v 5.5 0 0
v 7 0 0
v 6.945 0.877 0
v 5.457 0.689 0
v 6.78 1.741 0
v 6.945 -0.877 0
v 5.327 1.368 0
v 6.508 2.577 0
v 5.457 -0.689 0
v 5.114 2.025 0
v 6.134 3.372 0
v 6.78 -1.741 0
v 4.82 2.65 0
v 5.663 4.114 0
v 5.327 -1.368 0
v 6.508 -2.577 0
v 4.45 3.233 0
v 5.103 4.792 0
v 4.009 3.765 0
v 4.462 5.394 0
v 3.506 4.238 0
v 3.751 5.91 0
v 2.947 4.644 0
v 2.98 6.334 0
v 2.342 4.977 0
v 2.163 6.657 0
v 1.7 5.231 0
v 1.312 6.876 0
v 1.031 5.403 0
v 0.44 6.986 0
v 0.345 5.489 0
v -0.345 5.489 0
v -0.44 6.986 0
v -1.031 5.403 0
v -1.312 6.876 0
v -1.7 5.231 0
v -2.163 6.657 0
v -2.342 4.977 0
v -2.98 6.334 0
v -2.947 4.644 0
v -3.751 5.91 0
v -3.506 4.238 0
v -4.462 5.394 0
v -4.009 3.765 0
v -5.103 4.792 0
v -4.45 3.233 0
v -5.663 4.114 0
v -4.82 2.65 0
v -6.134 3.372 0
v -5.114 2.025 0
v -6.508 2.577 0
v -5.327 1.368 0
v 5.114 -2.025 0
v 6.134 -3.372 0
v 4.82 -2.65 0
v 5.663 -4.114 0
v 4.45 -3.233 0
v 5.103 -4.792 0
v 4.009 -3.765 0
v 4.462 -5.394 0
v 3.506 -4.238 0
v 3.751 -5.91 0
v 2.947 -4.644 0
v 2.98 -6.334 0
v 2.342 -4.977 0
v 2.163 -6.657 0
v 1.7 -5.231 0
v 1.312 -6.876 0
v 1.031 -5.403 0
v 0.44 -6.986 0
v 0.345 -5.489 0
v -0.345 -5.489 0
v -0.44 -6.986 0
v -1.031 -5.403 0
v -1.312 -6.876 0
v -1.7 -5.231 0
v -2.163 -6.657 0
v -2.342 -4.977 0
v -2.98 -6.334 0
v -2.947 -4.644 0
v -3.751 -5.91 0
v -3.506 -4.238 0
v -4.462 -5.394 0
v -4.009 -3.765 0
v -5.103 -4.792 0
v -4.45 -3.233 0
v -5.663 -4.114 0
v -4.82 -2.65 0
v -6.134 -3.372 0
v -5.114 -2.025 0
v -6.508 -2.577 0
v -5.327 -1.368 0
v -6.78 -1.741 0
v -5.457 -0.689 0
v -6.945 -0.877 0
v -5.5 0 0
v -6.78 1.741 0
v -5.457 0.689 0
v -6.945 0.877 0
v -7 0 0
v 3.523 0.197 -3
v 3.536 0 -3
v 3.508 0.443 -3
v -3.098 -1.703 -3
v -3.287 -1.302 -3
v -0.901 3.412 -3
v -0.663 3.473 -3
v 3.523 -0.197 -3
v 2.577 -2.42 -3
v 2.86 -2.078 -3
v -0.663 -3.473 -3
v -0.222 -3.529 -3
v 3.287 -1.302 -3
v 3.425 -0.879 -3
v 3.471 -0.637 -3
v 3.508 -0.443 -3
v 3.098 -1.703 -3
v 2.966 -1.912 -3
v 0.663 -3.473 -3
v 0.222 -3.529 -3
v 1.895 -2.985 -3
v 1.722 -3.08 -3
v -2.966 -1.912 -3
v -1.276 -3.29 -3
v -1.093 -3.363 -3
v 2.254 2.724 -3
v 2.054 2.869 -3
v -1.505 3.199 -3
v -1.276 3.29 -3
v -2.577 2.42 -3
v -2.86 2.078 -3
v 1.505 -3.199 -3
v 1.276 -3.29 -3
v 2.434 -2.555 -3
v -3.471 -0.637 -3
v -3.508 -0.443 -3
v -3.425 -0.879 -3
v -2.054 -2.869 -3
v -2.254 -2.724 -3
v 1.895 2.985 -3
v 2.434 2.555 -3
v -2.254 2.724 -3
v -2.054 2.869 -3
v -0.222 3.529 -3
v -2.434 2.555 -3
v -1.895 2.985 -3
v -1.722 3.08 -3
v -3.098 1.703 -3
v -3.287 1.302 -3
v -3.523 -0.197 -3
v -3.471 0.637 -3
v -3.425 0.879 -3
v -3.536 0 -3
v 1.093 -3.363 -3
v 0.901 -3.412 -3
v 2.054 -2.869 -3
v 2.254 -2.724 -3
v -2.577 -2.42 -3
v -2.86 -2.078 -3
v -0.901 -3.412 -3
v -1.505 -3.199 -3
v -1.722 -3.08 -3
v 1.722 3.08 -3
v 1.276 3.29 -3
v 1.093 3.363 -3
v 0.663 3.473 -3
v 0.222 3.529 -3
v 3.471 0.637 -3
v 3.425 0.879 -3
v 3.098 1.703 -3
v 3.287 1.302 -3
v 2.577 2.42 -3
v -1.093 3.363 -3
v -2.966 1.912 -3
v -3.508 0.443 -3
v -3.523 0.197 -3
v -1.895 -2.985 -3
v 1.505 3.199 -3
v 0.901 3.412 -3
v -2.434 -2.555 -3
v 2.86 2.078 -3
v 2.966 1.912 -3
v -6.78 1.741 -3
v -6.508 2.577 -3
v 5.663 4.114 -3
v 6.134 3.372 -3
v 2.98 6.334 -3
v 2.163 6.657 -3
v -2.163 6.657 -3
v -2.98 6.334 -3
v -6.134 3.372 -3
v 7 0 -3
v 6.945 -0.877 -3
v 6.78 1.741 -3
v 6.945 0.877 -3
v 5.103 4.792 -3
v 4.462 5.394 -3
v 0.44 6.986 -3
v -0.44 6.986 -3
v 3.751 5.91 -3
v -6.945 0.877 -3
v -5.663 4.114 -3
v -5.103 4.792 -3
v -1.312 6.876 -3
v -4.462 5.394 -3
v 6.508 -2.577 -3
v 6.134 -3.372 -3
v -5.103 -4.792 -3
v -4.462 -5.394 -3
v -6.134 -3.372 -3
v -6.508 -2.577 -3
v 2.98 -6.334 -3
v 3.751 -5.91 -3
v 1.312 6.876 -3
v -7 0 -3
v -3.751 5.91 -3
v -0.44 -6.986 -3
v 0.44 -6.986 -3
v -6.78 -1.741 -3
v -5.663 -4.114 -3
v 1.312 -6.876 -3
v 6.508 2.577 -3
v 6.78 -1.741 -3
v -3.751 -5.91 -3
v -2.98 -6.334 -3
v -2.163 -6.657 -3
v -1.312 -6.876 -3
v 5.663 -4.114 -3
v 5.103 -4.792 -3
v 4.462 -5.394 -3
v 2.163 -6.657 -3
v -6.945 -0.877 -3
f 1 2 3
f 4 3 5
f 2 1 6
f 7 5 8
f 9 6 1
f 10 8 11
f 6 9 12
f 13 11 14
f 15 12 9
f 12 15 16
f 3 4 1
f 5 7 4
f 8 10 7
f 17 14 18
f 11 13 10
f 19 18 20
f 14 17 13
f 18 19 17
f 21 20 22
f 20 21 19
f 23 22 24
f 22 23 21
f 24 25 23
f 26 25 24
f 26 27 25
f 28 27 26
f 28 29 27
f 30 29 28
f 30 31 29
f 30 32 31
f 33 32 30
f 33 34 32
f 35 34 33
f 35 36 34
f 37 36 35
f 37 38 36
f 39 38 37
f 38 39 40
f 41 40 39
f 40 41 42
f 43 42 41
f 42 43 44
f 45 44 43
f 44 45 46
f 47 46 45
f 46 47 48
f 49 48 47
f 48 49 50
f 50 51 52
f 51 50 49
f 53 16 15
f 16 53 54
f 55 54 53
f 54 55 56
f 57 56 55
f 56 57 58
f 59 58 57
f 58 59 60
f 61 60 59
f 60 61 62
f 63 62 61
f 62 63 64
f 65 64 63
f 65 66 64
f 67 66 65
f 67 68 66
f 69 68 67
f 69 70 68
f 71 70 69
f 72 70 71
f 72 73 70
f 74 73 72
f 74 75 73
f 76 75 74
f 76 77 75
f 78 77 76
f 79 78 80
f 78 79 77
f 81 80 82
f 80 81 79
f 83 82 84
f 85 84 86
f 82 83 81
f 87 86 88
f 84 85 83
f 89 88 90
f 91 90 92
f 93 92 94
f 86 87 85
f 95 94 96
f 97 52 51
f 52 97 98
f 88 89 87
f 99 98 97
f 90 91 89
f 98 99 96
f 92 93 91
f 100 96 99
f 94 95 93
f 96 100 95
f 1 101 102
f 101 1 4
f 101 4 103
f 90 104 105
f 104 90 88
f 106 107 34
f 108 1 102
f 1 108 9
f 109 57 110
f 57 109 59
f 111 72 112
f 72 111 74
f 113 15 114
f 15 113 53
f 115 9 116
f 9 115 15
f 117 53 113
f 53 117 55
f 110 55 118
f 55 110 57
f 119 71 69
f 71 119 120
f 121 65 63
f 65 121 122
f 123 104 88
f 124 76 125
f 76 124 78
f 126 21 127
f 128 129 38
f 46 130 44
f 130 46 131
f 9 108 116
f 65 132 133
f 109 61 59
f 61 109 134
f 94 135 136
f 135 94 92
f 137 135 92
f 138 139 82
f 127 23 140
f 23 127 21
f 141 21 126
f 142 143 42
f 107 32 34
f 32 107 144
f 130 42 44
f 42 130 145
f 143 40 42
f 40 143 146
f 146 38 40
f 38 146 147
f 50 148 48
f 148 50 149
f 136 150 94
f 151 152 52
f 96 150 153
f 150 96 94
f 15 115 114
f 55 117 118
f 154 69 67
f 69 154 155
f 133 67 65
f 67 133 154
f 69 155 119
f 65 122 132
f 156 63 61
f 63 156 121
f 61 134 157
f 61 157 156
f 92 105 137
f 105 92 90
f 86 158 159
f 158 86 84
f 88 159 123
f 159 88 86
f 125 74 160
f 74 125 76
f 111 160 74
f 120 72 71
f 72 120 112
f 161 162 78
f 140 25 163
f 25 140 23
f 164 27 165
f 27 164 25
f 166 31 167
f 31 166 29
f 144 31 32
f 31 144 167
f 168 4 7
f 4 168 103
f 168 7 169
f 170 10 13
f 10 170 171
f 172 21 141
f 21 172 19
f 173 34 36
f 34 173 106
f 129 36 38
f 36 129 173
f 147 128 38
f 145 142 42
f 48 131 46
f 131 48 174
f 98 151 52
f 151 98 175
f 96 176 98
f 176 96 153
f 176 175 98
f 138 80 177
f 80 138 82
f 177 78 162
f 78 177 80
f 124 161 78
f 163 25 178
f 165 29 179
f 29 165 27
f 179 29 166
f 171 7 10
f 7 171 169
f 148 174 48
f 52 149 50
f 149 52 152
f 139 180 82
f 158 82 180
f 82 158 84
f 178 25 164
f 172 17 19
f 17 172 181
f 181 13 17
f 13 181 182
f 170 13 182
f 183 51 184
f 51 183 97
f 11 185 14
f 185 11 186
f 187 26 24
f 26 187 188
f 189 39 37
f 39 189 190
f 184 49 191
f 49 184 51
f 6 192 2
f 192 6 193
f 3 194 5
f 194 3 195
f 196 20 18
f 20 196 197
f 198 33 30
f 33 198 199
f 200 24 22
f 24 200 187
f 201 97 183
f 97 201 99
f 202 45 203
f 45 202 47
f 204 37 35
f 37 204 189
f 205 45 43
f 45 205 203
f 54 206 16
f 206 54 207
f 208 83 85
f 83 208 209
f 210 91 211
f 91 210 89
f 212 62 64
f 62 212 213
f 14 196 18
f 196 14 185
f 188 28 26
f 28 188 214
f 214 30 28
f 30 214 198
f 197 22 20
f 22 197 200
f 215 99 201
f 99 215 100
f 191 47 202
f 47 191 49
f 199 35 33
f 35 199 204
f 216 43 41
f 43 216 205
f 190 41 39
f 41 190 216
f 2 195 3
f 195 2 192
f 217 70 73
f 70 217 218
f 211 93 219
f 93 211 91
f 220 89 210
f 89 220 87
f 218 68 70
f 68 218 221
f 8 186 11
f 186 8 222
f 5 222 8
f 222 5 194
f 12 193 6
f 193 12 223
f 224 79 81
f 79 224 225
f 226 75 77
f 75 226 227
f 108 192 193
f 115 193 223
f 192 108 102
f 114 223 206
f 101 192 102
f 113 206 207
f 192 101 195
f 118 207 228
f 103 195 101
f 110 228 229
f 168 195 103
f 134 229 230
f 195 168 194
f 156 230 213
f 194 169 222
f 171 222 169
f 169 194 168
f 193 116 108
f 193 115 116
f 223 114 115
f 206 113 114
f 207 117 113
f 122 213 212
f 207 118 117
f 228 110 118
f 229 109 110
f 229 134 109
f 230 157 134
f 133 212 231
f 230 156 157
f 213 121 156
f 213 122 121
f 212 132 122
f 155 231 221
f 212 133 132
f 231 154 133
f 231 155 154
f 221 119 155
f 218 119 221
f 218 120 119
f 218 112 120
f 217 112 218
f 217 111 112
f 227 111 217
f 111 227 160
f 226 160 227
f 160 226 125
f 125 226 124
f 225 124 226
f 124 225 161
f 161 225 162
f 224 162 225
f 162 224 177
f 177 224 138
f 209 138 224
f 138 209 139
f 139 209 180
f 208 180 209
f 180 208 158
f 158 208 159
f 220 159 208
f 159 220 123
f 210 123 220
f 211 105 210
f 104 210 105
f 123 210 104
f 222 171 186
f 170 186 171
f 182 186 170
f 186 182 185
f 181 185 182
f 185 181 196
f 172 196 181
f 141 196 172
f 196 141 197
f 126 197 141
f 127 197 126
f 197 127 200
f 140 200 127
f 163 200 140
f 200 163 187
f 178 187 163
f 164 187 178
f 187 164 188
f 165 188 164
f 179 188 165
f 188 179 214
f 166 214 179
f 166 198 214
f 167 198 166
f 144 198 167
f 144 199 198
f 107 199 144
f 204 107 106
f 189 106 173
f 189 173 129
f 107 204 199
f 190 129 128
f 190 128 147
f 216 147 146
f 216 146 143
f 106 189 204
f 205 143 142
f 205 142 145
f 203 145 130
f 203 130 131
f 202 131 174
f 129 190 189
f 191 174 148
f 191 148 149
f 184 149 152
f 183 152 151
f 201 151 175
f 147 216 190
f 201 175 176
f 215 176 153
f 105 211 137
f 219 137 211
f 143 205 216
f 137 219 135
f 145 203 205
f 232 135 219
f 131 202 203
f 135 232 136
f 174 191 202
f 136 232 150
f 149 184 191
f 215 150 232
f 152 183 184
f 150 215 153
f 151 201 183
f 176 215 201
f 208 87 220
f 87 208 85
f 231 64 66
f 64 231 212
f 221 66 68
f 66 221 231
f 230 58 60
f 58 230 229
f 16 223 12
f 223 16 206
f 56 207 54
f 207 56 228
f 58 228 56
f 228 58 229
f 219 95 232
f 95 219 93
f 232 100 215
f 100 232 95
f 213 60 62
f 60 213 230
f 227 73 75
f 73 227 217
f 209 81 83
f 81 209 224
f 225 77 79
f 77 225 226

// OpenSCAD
$fn = 50;


difference() {
	union() {
		translate(v = [0, 0, -3.0000000000]) {
			cylinder(h = 3, r = 7.0000000000);
		}
		cylinder(h = 0, r = 10.0000000000);
	}
	union() {
		translate(v = [0, 0, 0]) {
			rotate(a = [0, 0, 0]) {
				difference() {
					union() {
						#translate(v = [0, 0, -3.0000000000]) {
							cylinder(h = 3, r = 2.2500000000);
						}
						#translate(v = [0, 0, -4.2000000000]) {
							cylinder(h = 4.2000000000, r = 7.0000000000, r1 = 2.7500000000, r2 = 5.5000000000);
						}
						#translate(v = [0, 0, -3.0000000000]) {
							cylinder(h = 3, r = 2.7500000000);
						}
						#translate(v = [0, 0, -3.0000000000]) {
							cylinder(h = 3, r = 2.2500000000);
						}
					}
					union();
				}
			}
		}
	}
}
